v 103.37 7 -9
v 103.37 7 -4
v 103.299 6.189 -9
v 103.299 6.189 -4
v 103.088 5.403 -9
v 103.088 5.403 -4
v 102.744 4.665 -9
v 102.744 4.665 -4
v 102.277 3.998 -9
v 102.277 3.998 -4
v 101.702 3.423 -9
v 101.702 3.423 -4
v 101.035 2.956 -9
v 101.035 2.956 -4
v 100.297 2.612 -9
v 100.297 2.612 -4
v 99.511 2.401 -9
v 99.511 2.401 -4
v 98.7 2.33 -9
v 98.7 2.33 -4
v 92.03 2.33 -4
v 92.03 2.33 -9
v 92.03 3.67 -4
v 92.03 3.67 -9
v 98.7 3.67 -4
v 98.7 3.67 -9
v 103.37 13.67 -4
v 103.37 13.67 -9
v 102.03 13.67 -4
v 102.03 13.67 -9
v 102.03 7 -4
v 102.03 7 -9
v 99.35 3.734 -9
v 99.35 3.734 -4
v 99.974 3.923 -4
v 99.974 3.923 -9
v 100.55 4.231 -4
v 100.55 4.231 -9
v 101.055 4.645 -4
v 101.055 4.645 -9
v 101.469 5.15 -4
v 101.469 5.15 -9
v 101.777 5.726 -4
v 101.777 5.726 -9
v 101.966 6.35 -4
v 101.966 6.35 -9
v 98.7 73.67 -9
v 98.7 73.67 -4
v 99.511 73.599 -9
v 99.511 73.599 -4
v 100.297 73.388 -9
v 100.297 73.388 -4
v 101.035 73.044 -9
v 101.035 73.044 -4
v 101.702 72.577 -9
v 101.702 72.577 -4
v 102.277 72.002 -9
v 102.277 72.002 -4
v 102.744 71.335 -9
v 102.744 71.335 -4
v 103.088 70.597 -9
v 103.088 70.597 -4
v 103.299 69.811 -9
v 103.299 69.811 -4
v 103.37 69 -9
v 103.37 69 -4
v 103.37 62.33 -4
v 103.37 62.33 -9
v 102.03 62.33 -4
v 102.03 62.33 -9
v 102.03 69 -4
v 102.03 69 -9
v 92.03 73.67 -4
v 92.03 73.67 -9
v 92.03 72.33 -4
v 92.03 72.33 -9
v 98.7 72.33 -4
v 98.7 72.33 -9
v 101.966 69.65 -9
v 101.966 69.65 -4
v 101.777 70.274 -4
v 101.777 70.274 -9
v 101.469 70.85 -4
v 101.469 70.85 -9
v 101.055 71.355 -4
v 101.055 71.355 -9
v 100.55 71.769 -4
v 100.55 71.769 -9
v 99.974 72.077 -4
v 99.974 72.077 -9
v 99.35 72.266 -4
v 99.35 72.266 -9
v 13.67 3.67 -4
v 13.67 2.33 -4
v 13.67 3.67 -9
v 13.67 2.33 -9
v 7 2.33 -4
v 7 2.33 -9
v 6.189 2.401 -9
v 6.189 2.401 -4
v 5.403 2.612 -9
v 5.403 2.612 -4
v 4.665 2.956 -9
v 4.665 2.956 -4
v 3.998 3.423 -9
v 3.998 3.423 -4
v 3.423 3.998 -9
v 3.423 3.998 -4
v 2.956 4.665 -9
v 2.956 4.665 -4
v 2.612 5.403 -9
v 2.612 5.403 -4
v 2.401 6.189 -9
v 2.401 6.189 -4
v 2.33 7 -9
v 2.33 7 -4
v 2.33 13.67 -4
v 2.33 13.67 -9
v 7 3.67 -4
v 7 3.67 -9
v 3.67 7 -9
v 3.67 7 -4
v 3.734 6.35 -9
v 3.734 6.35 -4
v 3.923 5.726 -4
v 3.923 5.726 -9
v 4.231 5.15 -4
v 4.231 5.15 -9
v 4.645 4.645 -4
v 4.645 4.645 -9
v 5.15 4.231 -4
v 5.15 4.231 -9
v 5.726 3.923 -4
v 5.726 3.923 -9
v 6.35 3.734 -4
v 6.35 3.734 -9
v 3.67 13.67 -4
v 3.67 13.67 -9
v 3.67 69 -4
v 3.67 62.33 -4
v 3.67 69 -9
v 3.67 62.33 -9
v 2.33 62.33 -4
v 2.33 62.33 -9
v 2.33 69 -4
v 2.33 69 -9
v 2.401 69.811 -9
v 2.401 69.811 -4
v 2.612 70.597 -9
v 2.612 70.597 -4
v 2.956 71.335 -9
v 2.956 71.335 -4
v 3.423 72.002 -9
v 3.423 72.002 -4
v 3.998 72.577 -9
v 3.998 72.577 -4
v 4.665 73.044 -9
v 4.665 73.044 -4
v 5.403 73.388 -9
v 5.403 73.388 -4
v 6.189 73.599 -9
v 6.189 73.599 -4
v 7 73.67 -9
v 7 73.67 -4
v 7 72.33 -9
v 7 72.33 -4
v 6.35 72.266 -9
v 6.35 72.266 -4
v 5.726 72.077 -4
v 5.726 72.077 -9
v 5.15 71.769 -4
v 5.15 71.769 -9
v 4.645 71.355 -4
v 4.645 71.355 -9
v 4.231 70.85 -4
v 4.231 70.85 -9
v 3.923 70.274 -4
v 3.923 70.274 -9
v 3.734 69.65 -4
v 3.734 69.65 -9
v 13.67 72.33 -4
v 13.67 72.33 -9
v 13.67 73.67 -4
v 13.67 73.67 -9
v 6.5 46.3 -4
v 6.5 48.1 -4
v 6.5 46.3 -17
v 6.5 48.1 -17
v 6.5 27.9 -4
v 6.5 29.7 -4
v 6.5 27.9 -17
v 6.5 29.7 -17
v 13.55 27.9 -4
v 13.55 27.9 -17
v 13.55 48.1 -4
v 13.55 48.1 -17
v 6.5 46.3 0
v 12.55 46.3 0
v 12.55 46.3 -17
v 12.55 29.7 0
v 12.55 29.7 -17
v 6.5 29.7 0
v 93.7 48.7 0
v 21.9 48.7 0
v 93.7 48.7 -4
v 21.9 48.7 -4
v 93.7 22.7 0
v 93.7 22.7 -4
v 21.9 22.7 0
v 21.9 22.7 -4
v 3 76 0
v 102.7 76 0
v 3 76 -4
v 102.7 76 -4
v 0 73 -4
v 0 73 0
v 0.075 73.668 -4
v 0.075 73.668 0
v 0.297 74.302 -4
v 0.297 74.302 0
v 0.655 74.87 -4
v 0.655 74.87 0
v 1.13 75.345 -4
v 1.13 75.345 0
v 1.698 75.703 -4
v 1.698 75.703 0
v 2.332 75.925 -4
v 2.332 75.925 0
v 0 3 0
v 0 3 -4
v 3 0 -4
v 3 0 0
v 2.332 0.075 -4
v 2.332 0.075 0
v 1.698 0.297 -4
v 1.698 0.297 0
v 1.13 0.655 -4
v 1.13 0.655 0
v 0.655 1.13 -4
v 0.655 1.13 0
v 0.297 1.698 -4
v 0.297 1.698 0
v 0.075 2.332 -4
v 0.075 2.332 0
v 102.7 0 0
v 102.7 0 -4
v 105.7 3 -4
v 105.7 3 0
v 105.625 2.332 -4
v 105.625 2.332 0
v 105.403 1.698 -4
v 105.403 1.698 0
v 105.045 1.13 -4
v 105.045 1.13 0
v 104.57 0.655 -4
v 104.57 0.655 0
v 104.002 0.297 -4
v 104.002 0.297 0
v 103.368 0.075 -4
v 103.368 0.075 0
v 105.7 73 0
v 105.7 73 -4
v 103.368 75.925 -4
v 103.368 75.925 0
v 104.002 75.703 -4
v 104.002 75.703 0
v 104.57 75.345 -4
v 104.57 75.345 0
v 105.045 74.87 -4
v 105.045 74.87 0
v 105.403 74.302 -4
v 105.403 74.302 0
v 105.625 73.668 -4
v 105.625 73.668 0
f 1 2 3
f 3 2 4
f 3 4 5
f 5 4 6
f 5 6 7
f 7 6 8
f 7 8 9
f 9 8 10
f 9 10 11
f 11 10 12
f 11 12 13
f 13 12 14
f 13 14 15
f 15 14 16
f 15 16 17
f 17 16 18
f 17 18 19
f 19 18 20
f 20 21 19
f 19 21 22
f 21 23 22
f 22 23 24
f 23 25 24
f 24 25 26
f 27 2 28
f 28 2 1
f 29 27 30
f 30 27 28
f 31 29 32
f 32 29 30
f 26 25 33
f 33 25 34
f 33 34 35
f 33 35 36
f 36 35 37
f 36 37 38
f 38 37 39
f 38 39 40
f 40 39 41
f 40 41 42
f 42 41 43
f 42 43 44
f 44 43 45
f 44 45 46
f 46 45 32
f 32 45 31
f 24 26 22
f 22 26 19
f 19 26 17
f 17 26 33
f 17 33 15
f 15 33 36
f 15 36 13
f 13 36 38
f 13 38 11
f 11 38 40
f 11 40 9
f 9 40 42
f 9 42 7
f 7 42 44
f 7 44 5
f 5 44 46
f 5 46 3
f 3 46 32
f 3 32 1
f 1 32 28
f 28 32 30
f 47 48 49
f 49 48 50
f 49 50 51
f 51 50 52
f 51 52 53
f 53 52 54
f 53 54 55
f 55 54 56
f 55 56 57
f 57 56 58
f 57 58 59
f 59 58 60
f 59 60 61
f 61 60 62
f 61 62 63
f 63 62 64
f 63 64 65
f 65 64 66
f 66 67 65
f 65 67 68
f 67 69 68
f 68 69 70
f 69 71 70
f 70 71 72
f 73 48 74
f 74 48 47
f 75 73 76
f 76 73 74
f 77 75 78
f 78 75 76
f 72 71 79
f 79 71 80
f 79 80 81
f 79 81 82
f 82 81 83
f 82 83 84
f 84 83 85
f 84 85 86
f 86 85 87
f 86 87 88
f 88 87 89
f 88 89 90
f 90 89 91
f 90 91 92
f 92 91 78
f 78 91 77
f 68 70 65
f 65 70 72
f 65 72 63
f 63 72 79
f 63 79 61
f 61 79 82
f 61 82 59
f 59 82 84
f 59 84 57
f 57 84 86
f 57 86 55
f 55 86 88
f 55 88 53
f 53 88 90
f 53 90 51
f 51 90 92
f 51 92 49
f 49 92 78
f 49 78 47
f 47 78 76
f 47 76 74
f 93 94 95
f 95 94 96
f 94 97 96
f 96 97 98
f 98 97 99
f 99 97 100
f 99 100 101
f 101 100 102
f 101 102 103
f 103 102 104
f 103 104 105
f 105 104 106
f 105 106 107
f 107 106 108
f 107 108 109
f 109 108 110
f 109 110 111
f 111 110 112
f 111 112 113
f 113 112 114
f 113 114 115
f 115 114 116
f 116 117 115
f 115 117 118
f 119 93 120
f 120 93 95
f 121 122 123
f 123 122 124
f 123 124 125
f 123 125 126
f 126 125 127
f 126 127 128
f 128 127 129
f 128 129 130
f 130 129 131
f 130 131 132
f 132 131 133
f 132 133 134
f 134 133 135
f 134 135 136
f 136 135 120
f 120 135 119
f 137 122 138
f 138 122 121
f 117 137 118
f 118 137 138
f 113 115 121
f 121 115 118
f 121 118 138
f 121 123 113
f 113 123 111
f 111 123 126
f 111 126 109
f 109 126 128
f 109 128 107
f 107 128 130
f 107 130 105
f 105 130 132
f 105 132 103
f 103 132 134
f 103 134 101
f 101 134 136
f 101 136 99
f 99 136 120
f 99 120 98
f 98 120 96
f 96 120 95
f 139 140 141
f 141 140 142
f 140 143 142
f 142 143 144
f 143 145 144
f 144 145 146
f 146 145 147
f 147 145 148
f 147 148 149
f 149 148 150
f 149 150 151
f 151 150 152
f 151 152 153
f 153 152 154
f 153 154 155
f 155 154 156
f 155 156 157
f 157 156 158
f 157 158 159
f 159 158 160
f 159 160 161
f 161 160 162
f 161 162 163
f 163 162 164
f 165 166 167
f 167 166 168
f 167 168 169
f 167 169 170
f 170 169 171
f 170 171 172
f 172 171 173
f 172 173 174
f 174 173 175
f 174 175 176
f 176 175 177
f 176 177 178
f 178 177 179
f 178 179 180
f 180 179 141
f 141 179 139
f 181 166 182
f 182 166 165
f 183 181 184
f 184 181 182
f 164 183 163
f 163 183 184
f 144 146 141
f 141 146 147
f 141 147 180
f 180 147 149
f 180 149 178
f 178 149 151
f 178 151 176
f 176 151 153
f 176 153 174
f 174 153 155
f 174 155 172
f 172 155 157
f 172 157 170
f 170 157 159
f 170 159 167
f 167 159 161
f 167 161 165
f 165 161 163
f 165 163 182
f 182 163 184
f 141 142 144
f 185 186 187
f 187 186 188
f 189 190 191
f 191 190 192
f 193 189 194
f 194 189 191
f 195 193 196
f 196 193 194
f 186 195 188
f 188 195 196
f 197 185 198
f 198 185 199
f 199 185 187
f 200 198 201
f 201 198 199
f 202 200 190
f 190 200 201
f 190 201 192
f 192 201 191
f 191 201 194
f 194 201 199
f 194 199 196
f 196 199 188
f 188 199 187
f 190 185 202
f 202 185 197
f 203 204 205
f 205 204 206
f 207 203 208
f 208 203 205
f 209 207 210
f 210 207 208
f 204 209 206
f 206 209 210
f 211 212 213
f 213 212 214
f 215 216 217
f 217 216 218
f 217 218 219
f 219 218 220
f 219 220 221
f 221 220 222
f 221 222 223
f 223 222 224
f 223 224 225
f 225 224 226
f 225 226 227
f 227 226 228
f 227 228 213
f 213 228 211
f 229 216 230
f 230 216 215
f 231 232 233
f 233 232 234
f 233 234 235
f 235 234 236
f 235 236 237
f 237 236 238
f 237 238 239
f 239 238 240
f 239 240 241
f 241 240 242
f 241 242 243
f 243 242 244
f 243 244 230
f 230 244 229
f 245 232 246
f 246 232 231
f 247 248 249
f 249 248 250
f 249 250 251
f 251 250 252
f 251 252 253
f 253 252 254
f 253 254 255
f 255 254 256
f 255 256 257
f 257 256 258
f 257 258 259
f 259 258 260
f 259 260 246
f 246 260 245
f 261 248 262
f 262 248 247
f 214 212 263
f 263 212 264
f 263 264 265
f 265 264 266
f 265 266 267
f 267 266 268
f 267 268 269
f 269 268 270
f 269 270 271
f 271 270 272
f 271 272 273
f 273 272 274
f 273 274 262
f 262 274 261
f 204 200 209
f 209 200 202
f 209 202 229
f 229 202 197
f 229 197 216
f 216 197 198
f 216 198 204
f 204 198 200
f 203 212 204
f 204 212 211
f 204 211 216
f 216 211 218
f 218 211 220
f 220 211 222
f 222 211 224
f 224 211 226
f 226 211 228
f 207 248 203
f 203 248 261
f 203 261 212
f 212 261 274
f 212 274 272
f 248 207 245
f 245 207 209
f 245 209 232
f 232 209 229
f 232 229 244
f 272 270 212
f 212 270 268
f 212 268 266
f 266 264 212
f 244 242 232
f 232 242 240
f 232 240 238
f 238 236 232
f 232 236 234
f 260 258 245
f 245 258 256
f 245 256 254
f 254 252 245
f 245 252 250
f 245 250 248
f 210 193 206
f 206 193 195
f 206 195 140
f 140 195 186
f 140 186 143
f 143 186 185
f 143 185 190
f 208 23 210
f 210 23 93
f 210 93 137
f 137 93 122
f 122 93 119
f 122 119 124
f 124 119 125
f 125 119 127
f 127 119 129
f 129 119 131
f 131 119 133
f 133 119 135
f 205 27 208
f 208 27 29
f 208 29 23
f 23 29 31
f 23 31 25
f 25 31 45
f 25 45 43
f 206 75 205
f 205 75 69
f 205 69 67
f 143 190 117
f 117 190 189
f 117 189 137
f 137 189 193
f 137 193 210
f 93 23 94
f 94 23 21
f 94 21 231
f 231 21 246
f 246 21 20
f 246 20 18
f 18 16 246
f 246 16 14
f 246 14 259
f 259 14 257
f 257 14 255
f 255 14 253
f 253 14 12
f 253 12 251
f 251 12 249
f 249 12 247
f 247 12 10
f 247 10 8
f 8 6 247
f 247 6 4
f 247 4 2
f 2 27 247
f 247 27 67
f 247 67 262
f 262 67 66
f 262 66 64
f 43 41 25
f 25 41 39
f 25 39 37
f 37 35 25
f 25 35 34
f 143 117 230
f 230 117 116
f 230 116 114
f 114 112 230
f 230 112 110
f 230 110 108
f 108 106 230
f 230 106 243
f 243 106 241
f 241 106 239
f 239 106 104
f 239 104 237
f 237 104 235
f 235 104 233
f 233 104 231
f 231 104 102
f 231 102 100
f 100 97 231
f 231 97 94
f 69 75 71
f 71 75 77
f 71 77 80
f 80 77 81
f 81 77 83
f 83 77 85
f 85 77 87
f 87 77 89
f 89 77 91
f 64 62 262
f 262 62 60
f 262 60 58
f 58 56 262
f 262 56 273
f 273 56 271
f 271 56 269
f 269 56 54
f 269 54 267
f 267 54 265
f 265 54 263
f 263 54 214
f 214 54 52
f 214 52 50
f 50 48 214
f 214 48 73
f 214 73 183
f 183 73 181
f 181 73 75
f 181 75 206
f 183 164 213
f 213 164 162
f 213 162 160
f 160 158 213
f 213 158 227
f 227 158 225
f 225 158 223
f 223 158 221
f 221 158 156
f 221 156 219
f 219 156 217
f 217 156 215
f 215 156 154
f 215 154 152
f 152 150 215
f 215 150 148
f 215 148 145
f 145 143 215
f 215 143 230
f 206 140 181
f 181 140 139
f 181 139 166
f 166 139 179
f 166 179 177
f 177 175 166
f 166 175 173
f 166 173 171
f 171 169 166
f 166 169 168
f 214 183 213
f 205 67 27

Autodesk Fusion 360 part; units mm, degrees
sketch "Esquisse1" plane through (0, 0, 0) normal (0, 0, 1) x (1, 0, 0)
  line L0 (102.7, 76) -> (3, 76)
  line L1 (0, 73) -> (0, 3)
  arc A0 (3, 76) -> (0, 73) centre (3, 73) ccw
  arc A1 (0, 3) -> (3, 0) centre (3, 3) ccw
  arc A2 (105.7, 73) -> (102.7, 76) centre (102.7, 73) ccw
  line L2 (6.5, 46.3) -> (12.55, 46.3)
  line L3 (12.55, 46.3) -> (12.55, 29.7)
  line L4 (12.55, 29.7) -> (6.5, 29.7)
  line L5 (6.5, 29.7) -> (6.5, 46.3)
  line L6 (21.9, 22.7) -> (93.7, 22.7)
  line L7 (93.7, 22.7) -> (93.7, 48.7)
  line L8 (93.7, 48.7) -> (21.9, 48.7)
  line L9 (21.9, 48.7) -> (21.9, 22.7)
  line L10 (12.55, 46.3) -> (6.5, 46.3)
  line L11 (6.5, 46.3) -> (6.5, 48.1)
  line L12 (6.5, 48.1) -> (12.55, 48.1)
  line L13 (12.55, 48.1) -> (12.55, 46.3)
  line L14 (12.55, 29.7) -> (6.5, 29.7)
  line L15 (6.5, 29.7) -> (6.5, 27.9)
  line L16 (6.5, 27.9) -> (12.55, 27.9)
  line L17 (12.55, 27.9) -> (12.55, 29.7)
  line L18 (2, 62) -> (1.9999, 62)
  line L19 (105.7, 73) -> (105.7, 3)
  arc A3 (102.7, 0) -> (105.7, 3) centre (102.7, 3) ccw
  line L20 (12.55, 27.9) -> (13.55, 27.9)
  line L21 (13.55, 27.9) -> (13.55, 48.1)
  line L22 (13.55, 48.1) -> (12.55, 48.1)
  line L23 (12.55, 48.1) -> (12.55, 27.9)
  line L24 (2, 14) -> (2, 7)
  line L25 (7, 2) -> (14, 2)
  arc A4 (2, 7) -> (7, 2) centre (7, 7) ccw
  line L26 (2, 14) -> (4, 14)
  line L27 (4, 14) -> (4, 7)
  line L28 (7, 4) -> (14, 4)
  line L29 (14, 2) -> (14, 4)
  arc A5 (4, 7) -> (7, 4) centre (7, 7) ccw
  line L30 (13.67, 2.33) -> (13.67, 3.67)
  line L31 (7, 3.67) -> (13.67, 3.67)
  arc A6 (3.67, 7) -> (7, 3.67) centre (7, 7) ccw
  line L32 (3.67, 13.67) -> (3.67, 7)
  line L33 (2.33, 13.67) -> (3.67, 13.67)
  line L34 (2.33, 13.67) -> (2.33, 7)
  arc A7 (2.33, 7) -> (7, 2.33) centre (7, 7) ccw
  line L35 (7, 2.33) -> (13.67, 2.33)
  line L36 (91.7, 2) -> (98.7, 2)
  line L37 (103.7, 7) -> (103.7, 14)
  line L38 (103.7, 14) -> (101.7, 14)
  line L39 (101.7, 14) -> (101.7, 7)
  line L40 (98.7, 4) -> (91.7, 4)
  line L41 (91.7, 4) -> (91.7, 2)
  arc A8 (98.7, 2) -> (103.7, 7) centre (98.7, 7) ccw
  arc A9 (98.7, 4) -> (101.7, 7) centre (98.7, 7) ccw
  line L42 (92.03, 2.33) -> (98.7, 2.33)
  arc A10 (98.7, 2.33) -> (103.37, 7) centre (98.7, 7) ccw
  line L43 (103.37, 7) -> (103.37, 13.67)
  line L44 (103.37, 13.67) -> (102.03, 13.67)
  line L45 (102.03, 13.67) -> (102.03, 7)
  arc A11 (98.7, 3.67) -> (102.03, 7) centre (98.7, 7) ccw
  line L46 (98.7, 3.67) -> (92.03, 3.67)
  line L47 (92.03, 3.67) -> (92.03, 2.33)
  line L48 (3, 0) -> (102.7, 0)
  line L49 (103.7, 62) -> (103.7, 69)
  line L50 (98.7, 74) -> (91.7, 74)
  line L51 (91.7, 74) -> (91.7, 72)
  line L52 (91.7, 72) -> (98.7, 72)
  line L53 (101.7, 69) -> (101.7, 62)
  line L54 (101.7, 62) -> (103.7, 62)
  arc A12 (101.7, 69) -> (98.7, 72) centre (98.7, 69) ccw
  arc A13 (103.7, 69) -> (98.7, 74) centre (98.7, 69) ccw
  line L55 (92.03, 72.33) -> (98.7, 72.33)
  arc A14 (102.03, 69) -> (98.7, 72.33) centre (98.7, 69) ccw
  line L56 (102.03, 69) -> (102.03, 62.33)
  line L57 (102.03, 62.33) -> (103.37, 62.33)
  line L58 (103.37, 62.33) -> (103.37, 69)
  arc A15 (103.37, 69) -> (98.7, 73.67) centre (98.7, 69) ccw
  line L59 (98.7, 73.67) -> (92.03, 73.67)
  line L60 (92.03, 73.67) -> (92.03, 72.33)
  line L61 (2, 62) -> (2, 69)
  line L62 (7, 74) -> (14, 74)
  line L63 (14, 74) -> (14, 72)
  line L64 (14, 72) -> (7, 72)
  line L65 (4, 69) -> (4, 62)
  line L66 (4, 62) -> (2, 62)
  arc A16 (7, 74) -> (2, 69) centre (7, 69) ccw
  arc A17 (7, 72) -> (4, 69) centre (7, 69) ccw
  line L67 (2.33, 62.33) -> (2.33, 69)
  arc A18 (7, 73.67) -> (2.33, 69) centre (7, 69) ccw
  line L68 (7, 73.67) -> (13.67, 73.67)
  line L69 (13.67, 73.67) -> (13.67, 72.33)
  line L70 (13.67, 72.33) -> (7, 72.33)
  arc A19 (7, 72.33) -> (3.67, 69) centre (7, 69) ccw
  line L71 (3.67, 69) -> (3.67, 62.33)
  line L72 (3.67, 62.33) -> (2.33, 62.33)
  point P0 (0, 76)
  point P1 (103.7, 2)
  point P2 (103.7, 74)
  point P3 (2, 74)
  dimension "d2" = 76
  dimension "d3" = 3
  dimension "d4" = 3
  dimension "d5" = 3
  dimension "d31" = 6.05
  dimension "d32" = 16.6
  dimension "d49" = 26
  dimension "d50" = 71.8
  dimension "d51" = 27.3
  dimension "d53" = 29.7
  dimension "d55" = 1.8
  dimension "d56" = 1.8
  dimension "d72" = 21.9
  dimension "d92" = 6.5
  dimension "d107" = 3
  dimension "d108" = 105.7
  dimension "d109" = 12
  dimension "d137" = 1
  dimension "d147" = 2
  dimension "d148" = 5
  dimension "d149" = 2
  dimension "d150" = 3
  dimension "d151" = 12
  dimension "d152" = 12
  dimension "d153" = -0.33
  dimension "d154" = 12
  dimension "d155" = 12
  dimension "d160" = 2
  dimension "d162" = 2
  dimension "d164" = 5
  dimension "d165" = 3
  dimension "d166" = -0.33
  dimension "d167" = 12
  dimension "d168" = 12
  dimension "d169" = 2
  dimension "d171" = 2
  dimension "d172" = 2
  dimension "d173" = 2
  dimension "d174" = 2
  dimension "d175" = 3
  dimension "d176" = 5
  dimension "d177" = -0.33
  dimension "d178" = 12
  dimension "d179" = 12
  dimension "d180" = 2
  dimension "d183" = 2
  dimension "d184" = 2
  dimension "d185" = 2
  dimension "d186" = 5
  dimension "d187" = 3
  dimension "d188" = -0.33
extrude "Extrusion1" add sketch "Esquisse1" against normal blind 4 contours L0 L1 A0 A1 A2 L19 A3 L48 | L24 L25 A4 L26 L27 L28 L29 A5 | L36 L37 L38 L39 L40 L41 A8 A9 | L49 L50 L51 L52 L53 L54 A12 A13 | L61 L62 L63 L64 L65 L66 A16 A17
extrude "Extrusion5" add sketch "Esquisse1" against normal blind 17 contours L2 L10 L11 L12 L13 L23 | L3 L13 L17 L20 L21 L22 L23 | L4 L14 L15 L16 L17 L23
extrude "Extrusion17" add sketch "Esquisse1" against normal blind 9 contours L30 L31 A6 L32 L33 L34 A7 L35 | L42 A10 L43 L44 L45 A11 L46 L47 | L55 A14 L56 L57 L58 A15 L59 L60 | L67 A18 L68 L69 L70 A19 L71 L72
equation "d36 = 17.55 mm - 3 mm"
equation "d41 = d32 - 0 mm"
equation "d53 = ( d2 - d32 ) / 2"
equation "d56 = d55"
equation "d158 = 12 mm"
equation "d159 = d158"
equation "d78 = 4.197624 mm"
equation "d79 = 8.198 mm"
equation "d80 = 8.208 mm"
equation "d81 = 6.207952 mm"
equation "d85 = 12 mm"
equation "d87 = -0.4 mm"
equation "d97 = d78"
equation "d98 = d79"
equation "d100 = d81"
equation "d103 = d87"
equation "d104 = d85"
equation "d112 = d80"
equation "d146 = 2 mm"
equation "d147 = d146"
equation "d152 = d151"
equation "d166 = d153"
equation "d177 = d166"
equation "d188 = d153"
equation "d189 = -4 mm - 5 mm"
